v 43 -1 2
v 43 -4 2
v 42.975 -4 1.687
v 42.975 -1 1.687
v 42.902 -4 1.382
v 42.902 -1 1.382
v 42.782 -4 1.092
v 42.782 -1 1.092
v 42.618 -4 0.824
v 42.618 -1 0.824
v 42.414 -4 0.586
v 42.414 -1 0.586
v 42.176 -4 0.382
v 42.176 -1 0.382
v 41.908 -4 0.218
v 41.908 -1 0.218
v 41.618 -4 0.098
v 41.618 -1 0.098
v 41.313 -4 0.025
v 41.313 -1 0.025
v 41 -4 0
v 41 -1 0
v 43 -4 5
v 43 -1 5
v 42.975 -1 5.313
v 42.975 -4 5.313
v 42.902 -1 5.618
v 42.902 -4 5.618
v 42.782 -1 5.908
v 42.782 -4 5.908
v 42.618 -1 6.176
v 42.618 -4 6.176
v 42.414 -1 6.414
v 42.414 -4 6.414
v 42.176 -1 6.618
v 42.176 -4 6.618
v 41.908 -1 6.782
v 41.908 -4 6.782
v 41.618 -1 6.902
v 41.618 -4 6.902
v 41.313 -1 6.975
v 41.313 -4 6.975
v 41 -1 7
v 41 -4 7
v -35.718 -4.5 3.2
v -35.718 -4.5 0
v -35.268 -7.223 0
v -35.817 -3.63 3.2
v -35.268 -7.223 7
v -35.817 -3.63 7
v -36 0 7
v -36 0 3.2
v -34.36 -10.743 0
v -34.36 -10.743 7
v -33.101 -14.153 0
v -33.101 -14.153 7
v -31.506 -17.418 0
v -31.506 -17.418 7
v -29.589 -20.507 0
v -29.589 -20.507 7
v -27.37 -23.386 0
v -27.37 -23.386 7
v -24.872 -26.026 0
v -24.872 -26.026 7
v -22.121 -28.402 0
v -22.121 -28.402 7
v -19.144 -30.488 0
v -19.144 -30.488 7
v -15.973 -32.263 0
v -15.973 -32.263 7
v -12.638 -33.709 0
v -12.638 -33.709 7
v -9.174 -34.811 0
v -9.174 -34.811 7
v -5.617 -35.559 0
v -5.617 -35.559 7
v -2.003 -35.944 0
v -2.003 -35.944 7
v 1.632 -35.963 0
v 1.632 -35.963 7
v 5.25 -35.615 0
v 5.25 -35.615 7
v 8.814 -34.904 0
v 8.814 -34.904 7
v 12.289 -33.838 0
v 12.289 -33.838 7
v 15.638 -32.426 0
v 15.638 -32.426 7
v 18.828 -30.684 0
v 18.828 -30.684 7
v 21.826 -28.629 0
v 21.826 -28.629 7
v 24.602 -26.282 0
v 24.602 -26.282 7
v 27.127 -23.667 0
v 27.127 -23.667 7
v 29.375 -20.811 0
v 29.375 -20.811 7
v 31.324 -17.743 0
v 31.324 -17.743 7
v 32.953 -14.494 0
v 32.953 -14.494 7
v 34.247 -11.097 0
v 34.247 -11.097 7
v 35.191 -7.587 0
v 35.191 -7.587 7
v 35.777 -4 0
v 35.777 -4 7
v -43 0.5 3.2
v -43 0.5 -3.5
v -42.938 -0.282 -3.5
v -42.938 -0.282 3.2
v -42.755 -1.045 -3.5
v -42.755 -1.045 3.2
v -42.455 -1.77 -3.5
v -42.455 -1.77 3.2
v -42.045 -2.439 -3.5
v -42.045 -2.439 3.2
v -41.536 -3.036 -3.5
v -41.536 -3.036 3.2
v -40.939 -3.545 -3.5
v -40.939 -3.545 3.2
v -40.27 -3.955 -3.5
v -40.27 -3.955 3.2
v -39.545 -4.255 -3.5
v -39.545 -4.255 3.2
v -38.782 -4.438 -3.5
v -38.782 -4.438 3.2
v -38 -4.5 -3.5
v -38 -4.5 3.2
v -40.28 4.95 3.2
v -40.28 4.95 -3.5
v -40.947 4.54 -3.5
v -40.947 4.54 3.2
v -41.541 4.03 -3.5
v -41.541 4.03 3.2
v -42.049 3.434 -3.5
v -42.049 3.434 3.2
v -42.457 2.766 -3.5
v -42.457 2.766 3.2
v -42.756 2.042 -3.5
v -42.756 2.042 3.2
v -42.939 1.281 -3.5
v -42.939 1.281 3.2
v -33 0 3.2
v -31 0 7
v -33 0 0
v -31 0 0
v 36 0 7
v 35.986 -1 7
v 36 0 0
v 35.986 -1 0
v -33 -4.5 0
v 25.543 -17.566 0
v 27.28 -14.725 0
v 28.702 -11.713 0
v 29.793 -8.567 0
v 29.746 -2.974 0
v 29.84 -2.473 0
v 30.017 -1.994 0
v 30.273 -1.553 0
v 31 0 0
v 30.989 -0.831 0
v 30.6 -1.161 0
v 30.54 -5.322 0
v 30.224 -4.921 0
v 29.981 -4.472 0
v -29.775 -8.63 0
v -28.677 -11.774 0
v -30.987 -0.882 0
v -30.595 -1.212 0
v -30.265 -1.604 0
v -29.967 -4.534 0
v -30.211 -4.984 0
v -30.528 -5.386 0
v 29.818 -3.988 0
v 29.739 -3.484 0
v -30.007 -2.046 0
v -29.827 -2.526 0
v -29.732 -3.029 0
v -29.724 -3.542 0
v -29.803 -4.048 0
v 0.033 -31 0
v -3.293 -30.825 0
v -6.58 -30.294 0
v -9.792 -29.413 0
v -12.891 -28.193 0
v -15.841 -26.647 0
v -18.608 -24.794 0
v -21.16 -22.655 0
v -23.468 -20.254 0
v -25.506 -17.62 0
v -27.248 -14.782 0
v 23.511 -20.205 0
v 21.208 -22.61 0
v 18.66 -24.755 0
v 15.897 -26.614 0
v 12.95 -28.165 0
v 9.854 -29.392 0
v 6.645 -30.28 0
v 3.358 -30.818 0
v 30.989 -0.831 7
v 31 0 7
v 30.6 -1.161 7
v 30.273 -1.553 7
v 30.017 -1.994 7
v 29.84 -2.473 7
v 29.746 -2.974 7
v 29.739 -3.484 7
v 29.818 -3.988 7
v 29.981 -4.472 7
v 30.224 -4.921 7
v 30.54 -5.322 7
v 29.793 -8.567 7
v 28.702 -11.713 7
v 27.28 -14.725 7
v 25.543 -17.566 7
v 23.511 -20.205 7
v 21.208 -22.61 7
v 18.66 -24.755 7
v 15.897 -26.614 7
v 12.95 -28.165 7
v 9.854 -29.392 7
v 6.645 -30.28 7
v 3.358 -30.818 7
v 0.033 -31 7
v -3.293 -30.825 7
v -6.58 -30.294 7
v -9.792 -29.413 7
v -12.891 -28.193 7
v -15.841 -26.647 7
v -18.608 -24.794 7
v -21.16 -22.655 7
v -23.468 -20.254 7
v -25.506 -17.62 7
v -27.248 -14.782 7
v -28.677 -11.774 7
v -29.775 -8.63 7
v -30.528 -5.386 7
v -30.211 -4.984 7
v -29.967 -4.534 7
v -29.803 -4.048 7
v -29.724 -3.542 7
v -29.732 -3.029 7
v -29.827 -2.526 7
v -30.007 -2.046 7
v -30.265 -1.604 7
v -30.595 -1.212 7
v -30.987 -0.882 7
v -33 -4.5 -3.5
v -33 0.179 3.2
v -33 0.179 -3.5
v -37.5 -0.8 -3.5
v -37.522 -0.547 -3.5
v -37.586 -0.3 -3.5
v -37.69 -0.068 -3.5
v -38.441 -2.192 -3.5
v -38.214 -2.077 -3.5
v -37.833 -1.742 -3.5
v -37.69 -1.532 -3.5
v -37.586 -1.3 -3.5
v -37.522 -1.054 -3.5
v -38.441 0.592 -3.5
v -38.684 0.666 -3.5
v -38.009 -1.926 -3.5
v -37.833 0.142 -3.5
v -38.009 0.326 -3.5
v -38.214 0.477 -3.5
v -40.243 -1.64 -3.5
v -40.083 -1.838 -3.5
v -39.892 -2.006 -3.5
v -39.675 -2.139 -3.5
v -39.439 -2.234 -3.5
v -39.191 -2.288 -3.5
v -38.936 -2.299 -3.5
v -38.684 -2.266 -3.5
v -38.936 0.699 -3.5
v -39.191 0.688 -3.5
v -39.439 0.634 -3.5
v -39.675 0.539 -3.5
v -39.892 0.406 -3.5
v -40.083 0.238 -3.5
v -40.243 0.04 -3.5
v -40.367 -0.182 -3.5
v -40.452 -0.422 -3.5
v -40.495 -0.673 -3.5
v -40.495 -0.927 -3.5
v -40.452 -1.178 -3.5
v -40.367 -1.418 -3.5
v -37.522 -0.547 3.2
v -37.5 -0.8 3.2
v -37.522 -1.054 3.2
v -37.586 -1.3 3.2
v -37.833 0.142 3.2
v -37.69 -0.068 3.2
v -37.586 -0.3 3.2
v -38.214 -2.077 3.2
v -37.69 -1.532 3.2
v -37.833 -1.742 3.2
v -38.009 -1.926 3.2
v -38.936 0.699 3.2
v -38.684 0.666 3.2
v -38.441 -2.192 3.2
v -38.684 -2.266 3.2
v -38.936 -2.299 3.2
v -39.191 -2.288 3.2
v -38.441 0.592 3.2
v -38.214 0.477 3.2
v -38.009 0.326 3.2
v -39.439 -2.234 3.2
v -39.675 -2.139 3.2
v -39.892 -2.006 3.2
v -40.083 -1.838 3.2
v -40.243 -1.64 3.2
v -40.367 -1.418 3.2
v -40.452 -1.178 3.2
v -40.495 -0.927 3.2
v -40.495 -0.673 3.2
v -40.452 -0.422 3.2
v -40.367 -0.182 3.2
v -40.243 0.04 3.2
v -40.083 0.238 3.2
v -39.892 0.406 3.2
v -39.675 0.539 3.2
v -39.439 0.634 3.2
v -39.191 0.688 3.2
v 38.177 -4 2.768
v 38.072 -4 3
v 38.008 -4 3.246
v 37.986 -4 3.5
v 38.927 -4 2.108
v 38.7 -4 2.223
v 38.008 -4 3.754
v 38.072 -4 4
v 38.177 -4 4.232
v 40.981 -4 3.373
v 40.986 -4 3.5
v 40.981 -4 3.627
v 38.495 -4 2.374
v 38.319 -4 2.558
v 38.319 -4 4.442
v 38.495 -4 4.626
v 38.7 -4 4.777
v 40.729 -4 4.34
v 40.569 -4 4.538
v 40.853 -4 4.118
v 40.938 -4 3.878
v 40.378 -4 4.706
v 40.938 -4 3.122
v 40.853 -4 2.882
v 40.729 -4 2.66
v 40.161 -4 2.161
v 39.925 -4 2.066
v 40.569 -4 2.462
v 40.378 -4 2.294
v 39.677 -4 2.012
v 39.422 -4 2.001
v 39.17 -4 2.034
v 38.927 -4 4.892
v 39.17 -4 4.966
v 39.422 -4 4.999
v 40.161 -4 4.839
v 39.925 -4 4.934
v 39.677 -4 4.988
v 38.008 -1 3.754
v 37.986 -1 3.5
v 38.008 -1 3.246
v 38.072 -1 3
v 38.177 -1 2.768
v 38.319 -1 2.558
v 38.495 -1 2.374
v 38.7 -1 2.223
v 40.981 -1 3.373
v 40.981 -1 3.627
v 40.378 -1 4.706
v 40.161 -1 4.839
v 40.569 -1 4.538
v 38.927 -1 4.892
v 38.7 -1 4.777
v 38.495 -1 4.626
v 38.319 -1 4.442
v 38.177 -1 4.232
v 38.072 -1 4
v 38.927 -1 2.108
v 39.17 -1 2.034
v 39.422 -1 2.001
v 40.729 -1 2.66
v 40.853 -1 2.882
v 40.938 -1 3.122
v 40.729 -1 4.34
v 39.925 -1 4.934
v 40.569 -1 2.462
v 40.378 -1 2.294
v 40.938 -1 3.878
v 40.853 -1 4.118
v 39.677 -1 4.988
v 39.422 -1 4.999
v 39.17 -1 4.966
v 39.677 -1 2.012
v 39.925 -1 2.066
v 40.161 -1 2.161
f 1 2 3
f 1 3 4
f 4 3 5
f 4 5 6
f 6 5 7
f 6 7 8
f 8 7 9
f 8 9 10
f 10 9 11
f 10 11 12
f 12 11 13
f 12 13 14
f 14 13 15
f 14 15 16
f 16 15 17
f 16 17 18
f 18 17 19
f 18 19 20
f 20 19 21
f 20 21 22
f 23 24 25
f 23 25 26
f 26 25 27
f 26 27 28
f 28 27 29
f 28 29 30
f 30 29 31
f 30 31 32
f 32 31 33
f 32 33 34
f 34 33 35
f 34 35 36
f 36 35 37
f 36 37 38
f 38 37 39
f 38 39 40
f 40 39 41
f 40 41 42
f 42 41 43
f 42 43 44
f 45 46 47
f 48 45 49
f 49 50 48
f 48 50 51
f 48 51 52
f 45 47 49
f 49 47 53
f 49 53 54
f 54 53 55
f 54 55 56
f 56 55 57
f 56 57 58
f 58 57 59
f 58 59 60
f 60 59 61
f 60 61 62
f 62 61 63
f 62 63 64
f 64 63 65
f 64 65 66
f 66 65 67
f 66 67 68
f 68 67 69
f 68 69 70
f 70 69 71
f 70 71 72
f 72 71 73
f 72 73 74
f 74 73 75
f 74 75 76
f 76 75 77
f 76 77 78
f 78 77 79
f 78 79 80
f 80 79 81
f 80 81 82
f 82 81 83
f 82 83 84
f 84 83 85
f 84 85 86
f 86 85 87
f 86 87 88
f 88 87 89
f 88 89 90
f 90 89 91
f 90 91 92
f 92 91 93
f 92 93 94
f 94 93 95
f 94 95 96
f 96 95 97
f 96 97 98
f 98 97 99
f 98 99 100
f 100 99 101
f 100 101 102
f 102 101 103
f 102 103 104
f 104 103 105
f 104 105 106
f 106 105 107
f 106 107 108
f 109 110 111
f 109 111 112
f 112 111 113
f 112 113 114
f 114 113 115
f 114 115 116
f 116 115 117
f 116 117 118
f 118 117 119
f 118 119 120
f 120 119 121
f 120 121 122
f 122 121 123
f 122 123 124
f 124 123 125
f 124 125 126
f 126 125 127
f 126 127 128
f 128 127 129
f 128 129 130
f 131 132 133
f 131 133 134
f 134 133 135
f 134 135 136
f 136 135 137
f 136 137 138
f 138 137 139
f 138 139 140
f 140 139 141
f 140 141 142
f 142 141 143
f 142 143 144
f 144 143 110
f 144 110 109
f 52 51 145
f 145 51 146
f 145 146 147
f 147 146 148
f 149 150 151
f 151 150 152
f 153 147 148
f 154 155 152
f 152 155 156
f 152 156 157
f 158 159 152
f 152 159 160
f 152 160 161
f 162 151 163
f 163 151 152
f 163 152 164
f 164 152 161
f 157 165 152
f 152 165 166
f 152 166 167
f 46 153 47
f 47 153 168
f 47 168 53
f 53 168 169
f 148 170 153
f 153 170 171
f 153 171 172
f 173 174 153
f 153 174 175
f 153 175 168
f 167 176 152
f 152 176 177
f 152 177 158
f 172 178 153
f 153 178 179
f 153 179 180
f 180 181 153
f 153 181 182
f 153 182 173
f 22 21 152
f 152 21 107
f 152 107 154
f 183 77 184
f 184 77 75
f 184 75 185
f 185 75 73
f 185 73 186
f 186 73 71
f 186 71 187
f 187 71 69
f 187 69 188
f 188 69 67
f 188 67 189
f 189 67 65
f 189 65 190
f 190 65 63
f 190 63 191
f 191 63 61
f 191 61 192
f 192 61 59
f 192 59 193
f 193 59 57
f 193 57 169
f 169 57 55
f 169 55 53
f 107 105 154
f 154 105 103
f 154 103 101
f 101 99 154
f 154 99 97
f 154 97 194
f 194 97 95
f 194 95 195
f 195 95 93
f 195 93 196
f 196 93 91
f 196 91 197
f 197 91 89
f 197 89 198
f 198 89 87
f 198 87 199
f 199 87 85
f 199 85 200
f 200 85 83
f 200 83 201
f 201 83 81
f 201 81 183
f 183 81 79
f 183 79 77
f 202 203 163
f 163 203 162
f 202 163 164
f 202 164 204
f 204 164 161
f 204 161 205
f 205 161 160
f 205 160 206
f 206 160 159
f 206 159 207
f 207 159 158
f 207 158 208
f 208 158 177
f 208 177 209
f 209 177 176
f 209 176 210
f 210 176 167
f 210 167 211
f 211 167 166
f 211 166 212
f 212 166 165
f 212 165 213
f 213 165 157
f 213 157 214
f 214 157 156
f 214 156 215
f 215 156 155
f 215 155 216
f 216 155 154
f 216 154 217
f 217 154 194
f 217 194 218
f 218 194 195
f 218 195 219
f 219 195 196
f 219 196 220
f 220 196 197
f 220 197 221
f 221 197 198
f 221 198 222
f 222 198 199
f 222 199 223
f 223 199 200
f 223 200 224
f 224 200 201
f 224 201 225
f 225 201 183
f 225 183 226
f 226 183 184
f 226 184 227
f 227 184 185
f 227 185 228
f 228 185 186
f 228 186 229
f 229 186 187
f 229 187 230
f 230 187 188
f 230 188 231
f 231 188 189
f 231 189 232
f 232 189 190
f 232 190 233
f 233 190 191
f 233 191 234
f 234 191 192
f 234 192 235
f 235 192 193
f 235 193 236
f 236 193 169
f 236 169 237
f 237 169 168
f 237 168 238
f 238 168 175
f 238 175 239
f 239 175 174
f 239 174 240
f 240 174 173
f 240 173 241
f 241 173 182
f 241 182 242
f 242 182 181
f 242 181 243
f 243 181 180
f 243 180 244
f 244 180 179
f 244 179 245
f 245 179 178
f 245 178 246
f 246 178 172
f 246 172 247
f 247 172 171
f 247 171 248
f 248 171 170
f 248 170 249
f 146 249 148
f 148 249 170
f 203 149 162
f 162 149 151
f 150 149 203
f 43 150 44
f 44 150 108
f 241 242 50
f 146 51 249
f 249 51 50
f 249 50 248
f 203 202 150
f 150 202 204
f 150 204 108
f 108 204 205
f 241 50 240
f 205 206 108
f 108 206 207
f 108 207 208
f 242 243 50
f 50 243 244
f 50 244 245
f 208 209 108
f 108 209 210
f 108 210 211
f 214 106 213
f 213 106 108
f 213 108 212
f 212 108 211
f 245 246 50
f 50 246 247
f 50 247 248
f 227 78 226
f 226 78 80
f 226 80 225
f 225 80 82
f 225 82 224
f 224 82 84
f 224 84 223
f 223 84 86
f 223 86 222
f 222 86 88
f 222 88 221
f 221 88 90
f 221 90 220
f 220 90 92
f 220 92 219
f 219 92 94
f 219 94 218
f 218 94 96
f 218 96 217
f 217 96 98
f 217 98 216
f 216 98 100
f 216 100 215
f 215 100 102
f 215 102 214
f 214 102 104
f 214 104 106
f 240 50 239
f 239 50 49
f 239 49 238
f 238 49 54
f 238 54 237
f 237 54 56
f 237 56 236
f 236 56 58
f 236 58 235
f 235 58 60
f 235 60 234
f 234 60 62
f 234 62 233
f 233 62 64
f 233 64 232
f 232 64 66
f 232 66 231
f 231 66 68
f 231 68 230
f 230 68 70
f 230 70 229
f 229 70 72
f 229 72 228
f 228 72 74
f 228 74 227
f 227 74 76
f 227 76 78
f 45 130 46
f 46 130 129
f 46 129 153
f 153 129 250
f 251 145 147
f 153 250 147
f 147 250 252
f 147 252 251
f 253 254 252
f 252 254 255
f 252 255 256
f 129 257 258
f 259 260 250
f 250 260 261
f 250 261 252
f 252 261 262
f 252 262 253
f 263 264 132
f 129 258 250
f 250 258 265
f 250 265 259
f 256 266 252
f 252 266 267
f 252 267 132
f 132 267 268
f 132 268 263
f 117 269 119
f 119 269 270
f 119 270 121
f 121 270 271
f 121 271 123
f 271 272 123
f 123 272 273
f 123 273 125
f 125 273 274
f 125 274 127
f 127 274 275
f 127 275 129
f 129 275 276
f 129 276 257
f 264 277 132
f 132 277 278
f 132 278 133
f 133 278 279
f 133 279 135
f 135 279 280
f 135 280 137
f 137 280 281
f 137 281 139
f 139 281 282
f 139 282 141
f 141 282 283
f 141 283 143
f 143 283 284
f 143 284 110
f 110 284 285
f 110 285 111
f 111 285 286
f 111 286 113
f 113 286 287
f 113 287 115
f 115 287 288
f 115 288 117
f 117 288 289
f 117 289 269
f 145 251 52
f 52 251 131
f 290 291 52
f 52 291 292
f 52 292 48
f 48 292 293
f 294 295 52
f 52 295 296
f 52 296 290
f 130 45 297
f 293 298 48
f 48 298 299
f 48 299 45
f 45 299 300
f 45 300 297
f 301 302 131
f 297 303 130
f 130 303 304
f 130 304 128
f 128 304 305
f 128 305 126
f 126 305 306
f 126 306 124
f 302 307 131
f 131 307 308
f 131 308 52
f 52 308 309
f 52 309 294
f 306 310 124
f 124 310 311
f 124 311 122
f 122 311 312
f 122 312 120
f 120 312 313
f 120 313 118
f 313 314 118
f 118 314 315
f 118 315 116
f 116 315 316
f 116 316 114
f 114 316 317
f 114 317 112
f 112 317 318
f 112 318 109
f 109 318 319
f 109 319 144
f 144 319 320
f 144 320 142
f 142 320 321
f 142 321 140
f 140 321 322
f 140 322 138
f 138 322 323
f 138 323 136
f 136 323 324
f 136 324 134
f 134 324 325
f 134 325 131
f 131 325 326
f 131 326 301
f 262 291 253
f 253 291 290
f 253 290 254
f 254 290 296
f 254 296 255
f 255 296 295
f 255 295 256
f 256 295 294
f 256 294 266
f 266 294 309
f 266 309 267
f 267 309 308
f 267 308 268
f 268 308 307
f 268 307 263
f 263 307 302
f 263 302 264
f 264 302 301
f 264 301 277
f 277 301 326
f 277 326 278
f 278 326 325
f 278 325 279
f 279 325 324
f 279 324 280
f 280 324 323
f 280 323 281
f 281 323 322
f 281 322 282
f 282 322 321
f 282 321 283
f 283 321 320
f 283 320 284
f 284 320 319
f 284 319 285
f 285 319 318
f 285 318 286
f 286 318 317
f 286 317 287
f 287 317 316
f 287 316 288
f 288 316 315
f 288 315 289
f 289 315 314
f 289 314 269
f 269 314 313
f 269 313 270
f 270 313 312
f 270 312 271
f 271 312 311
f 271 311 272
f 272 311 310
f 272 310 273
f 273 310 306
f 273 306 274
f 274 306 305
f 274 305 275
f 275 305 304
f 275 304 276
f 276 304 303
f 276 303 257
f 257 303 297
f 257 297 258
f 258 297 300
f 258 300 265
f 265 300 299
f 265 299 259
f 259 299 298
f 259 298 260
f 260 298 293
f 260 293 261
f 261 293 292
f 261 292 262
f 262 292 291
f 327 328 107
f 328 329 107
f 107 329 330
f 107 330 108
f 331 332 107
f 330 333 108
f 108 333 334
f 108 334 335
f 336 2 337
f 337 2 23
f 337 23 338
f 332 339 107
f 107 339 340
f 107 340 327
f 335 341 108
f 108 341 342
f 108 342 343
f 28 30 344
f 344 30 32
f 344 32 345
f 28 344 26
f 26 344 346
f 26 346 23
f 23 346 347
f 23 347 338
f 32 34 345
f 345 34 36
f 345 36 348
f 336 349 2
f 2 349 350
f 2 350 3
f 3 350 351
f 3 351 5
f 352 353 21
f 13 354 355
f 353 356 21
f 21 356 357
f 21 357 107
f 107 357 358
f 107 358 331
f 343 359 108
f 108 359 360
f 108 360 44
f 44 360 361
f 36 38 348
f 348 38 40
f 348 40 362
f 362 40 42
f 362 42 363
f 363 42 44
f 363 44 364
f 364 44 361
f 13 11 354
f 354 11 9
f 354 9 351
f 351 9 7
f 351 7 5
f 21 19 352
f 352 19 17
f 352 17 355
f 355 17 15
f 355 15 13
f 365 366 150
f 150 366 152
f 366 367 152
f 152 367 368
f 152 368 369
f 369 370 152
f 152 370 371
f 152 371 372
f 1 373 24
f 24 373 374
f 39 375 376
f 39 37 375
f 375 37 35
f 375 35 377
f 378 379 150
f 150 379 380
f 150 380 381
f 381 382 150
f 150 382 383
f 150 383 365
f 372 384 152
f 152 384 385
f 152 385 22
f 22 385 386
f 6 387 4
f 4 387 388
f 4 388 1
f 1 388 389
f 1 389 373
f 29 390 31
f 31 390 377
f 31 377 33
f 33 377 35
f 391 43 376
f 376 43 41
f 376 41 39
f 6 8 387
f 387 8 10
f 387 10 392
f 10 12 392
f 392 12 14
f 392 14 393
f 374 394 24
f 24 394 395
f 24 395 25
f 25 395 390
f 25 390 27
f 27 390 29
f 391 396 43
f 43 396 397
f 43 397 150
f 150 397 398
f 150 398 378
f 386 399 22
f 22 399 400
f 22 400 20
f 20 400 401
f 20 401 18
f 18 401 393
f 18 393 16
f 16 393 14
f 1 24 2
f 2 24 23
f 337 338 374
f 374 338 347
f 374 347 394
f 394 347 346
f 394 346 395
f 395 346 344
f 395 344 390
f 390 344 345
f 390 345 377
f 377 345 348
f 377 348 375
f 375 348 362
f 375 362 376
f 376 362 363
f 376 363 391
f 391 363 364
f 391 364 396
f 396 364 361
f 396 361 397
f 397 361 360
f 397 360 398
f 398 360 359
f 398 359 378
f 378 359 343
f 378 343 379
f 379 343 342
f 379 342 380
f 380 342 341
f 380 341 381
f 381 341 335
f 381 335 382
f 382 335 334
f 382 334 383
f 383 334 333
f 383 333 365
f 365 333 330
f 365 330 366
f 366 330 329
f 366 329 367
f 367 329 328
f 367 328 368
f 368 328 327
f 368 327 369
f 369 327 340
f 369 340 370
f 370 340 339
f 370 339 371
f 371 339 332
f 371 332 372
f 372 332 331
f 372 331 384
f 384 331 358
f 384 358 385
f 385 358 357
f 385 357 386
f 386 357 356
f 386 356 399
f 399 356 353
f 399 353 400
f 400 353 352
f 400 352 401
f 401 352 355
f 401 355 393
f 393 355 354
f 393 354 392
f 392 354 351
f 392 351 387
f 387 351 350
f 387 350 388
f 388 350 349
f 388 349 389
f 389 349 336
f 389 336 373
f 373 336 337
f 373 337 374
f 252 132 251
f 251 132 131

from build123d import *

# Parameters (mm, degrees)
BOSS_EXTRUDE2_DEPTH      = 7
BOSS_EXTRUDE7_DEPTH      = 3.5
BOSS_EXTRUDE7_DEPTH_BACK = 3.2
SKETCH7_W                = 10
SKETCH7_H                = 10
SKETCH8_R                = 1.5
CUT_EXTRUDE3_DEPTH       = 10
FILLET1_R                = 5
FILLET2_R                = 5
FILLET3_R                = 5
SKETCH9_W                = 8
SKETCH9_H                = 3
BOSS_EXTRUDE8_DEPTH      = 7
SKETCH10_R               = 1.5
CUT_EXTRUDE4_DEPTH       = 10
FILLET4_R                = 2
FILLET5_R                = 2
CUT_EXTRUDE5_DEPTH       = 7


with BuildPart() as part:
    # Sketch1 → Boss-Extrude2 (new body)
    with BuildSketch(Plane.XY):
        with BuildLine():
            Line((36, 0), (31, 0))
            ThreePointArc((31, 0), (30.997217748, -0.415321451), (30.98887149, -0.830568352))
            ThreePointArc((30.98887149, -0.830568352), (29.746163614, -2.974229152), (30.539836631, -5.321501534))
            ThreePointArc((30.539836631, -5.321501534), (0.032857513, -30.999982587), (-30.528487289, -5.386229095))
            ThreePointArc((-30.528487289, -5.386229095), (-29.731741507, -3.029439038), (-30.987456583, -0.881779181))
            ThreePointArc((-30.987456583, -0.881779181), (-30.996863987, -0.440934196), (-31, 0))
            Line((-31, 0), (-36, 0))
            ThreePointArc((-36, 0), (0, -36), (36, 0))
        make_face()
    extrude(amount=BOSS_EXTRUDE2_DEPTH)

    # Sketch7 → Boss-Extrude7 (add, two sides: drawn at the far end of the back side and taken through both)
    with BuildSketch(Plane(origin=(0, 0, 0), x_dir=(-1, 0, 0), z_dir=(0, 0, -1)).offset(-BOSS_EXTRUDE7_DEPTH_BACK)):
        with Locations((38, 0.5)):
            Rectangle(SKETCH7_W, SKETCH7_H)
    extrude(amount=BOSS_EXTRUDE7_DEPTH + BOSS_EXTRUDE7_DEPTH_BACK)

    # Sketch8 → Cut-Extrude3 (cut)
    with BuildSketch(Plane.XY.offset(3.2)):
        with Locations((-39, -0.8)):
            Circle(SKETCH8_R)
    extrude(amount=-CUT_EXTRUDE3_DEPTH, mode=Mode.SUBTRACT)

    # Fillet1
    fillet1_edges = [part.edges().sort_by_distance(p)[0] for p in [
        (-43, 5.5, -0.15),
    ]]
    fillet(fillet1_edges, radius=FILLET1_R)

    # Fillet2
    fillet2_edges = [part.edges().sort_by_distance(p)[0] for p in [
        (-43, -4.5, -0.15),
    ]]
    fillet(fillet2_edges, radius=FILLET2_R - 0.0001)  # a hair under: the kernel refuses the full size

    # Fillet3
    fillet3_edges = [part.edges().sort_by_distance(p)[0] for p in [
        (-33, 5.5, -0.15),
    ]]
    fillet(fillet3_edges, radius=FILLET3_R - 0.0001)  # a hair under: the kernel refuses the full size

    # Sketch9 → Boss-Extrude8 (add)
    with BuildSketch(Plane.XY.offset(7)):
        with Locations((39, -2.5)):
            Rectangle(SKETCH9_W, SKETCH9_H)
    extrude(amount=-BOSS_EXTRUDE8_DEPTH)

    # Sketch10 → Cut-Extrude4 (cut)
    with BuildSketch(Plane(origin=(0, -1, 0), x_dir=(1, 0, 0), z_dir=(0, 1, 0))):
        with Locations(Location((39.486108431, -3.5, 0), (0, 0, 180))):
            Circle(SKETCH10_R)
    extrude(amount=-CUT_EXTRUDE4_DEPTH, mode=Mode.SUBTRACT)

    # Fillet4
    fillet4_edges = [part.edges().sort_by_distance(p)[0] for p in [
        (43, -2.5, 7),
    ]]
    fillet(fillet4_edges, radius=FILLET4_R)

    # Fillet5
    fillet5_edges = [part.edges().sort_by_distance(p)[0] for p in [
        (43, -2.5, 0),
    ]]
    fillet(fillet5_edges, radius=FILLET5_R)

    # Sketch11 → Cut-Extrude5 (cut)
    with BuildSketch(Plane(origin=(0, 0, -3.5), x_dir=(-1, 0, 0), z_dir=(0, 0, -1))):
        with BuildLine():
            Line((33, 0.5), (33, 0.179462338))
            Line((33, 0.179462338), (40.279801287, 4.950000684))
            ThreePointArc((40.279801287, 4.950000684), (39.17260321, 5.3605557), (38, 5.5))
            ThreePointArc((38, 5.5), (34.464466094, 4.035533906), (33, 0.5))
        make_face()
    extrude(amount=-CUT_EXTRUDE5_DEPTH, mode=Mode.SUBTRACT)


with BuildPart() as cut_extrude5_kept_piece:
    # of the separate pieces the step leaves, the one the design keeps (cut_extrude5_pieces_kept)
    add(part.part.solids().sort_by_distance((43, -4, 2))[0])


solid = cut_extrude5_kept_piece.part
